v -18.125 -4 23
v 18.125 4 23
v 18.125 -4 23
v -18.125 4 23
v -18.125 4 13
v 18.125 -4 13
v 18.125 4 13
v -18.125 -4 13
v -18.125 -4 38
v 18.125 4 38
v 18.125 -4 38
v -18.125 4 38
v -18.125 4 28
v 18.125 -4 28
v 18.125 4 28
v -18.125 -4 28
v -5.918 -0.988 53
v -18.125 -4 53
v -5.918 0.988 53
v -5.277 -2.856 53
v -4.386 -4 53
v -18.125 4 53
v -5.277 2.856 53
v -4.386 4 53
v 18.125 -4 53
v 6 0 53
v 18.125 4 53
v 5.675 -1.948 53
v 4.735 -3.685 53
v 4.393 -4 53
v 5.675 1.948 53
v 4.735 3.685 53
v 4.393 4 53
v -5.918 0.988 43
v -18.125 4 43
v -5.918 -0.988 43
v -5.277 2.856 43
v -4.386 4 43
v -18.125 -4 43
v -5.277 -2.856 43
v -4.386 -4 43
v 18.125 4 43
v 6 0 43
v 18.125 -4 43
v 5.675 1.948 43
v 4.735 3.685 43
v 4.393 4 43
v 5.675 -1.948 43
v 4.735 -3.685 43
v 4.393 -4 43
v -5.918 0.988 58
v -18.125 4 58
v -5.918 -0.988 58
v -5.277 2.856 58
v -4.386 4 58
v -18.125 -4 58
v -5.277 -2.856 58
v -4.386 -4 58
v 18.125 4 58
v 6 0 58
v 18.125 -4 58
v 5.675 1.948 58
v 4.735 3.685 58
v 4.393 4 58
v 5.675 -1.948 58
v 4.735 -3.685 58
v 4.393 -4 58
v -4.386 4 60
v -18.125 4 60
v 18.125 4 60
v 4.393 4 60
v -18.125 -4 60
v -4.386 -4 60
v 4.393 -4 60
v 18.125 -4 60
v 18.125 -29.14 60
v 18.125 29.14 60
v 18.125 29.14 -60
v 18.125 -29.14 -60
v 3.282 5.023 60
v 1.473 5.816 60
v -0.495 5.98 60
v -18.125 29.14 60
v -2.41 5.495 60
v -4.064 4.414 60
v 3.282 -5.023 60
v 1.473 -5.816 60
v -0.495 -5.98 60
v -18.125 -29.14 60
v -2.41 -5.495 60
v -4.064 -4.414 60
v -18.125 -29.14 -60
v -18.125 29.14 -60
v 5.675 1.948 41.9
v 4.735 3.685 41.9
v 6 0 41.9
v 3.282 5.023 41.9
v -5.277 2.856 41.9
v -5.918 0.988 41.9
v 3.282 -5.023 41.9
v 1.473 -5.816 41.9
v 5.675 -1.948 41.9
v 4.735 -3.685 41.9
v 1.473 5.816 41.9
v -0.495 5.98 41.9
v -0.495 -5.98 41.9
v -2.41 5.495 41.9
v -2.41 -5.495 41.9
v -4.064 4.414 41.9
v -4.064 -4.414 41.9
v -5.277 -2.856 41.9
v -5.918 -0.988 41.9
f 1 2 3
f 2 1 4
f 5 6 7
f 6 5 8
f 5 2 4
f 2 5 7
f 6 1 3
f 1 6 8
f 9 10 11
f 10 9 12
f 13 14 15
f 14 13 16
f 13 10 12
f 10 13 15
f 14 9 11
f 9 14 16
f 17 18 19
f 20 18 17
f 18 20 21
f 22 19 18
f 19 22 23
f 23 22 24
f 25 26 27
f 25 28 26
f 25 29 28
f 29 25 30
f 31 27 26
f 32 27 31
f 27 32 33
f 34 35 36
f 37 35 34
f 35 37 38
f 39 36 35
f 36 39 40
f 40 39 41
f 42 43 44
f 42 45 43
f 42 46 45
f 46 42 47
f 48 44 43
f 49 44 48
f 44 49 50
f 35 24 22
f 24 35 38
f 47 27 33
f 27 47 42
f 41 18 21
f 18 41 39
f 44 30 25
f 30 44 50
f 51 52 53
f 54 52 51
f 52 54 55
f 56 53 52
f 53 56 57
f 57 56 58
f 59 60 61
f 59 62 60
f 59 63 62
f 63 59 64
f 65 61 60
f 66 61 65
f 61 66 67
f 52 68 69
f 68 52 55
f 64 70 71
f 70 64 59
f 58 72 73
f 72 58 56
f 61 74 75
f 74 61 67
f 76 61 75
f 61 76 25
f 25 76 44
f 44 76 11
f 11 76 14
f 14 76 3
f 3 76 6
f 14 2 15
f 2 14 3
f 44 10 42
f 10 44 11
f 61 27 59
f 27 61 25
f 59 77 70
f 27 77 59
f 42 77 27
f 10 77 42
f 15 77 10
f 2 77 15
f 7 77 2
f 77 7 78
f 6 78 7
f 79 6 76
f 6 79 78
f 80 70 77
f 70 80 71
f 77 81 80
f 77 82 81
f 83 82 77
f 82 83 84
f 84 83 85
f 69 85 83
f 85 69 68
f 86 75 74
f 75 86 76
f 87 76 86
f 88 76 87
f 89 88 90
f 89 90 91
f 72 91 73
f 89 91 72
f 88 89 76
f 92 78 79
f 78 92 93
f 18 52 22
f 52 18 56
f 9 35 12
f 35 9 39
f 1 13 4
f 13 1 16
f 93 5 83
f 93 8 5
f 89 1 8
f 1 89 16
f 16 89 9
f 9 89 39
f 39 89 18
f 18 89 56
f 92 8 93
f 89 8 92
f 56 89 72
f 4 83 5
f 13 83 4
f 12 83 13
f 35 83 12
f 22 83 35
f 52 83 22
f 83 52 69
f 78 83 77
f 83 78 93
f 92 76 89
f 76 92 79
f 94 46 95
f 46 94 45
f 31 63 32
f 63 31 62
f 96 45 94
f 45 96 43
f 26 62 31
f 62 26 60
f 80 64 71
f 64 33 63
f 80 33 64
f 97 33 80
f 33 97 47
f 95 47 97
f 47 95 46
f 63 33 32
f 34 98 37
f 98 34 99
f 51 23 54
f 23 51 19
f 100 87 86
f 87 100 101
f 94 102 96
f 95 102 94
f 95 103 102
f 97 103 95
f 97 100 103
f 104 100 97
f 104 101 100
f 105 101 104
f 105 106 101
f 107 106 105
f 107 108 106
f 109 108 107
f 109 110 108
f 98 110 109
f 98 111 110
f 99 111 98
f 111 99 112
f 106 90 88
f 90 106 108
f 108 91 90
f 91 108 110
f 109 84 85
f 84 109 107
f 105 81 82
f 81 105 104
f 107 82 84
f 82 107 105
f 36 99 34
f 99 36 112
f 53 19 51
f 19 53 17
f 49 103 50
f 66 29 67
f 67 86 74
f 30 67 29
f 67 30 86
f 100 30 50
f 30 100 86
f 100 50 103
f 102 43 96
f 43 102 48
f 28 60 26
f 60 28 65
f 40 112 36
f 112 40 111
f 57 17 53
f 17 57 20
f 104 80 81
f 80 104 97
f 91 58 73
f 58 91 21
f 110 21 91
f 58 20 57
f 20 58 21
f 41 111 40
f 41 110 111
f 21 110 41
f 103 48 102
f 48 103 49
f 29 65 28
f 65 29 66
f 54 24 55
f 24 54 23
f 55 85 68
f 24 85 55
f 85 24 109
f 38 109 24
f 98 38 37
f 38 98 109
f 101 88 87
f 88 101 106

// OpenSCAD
/* doodle-meta {"version":1,"parameters":{"width":{"label":"Overall width","description":"Changes the body width","unit":"mm","feature":"body_width"},"depth":{"label":"Overall depth","description":"Changes the body depth","unit":"mm","feature":"body_depth"},"height":{"label":"Overall height","description":"Changes the body height","unit":"mm","feature":"body_height"},"thickness":{"label":"Plate thickness","description":"Changes the thickness of the plate","unit":"mm","feature":"body_thickness"},"hole_diameter":{"label":"Central hole diameter","description":"Changes the diameter of the central hole","unit":"mm","feature":"central_hole"},"slot_width":{"label":"Slot width","description":"Changes the width of the mounting slots","unit":"mm","feature":"slot_row"},"slot_height":{"label":"Slot height","description":"Changes the height of the mounting slots","unit":"mm","feature":"slot_row"},"slot_count":{"label":"Slot count","description":"Changes the number of mounting slots","unit":"count","feature":"slot_row"}},"features":{"body_width":{"kind":"dimension","axis":"x","label":"Overall width"},"body_depth":{"kind":"dimension","axis":"y","label":"Overall depth"},"body_height":{"kind":"dimension","axis":"z","label":"Overall height"},"body_thickness":{"kind":"dimension","axis":"y","label":"Plate thickness"},"central_hole":{"kind":"region","label":"Central hole","min":[{"parameter":"width","scale":0.5,"offset":0},{"parameter":"depth","scale":0.5,"offset":0},{"parameter":"height","scale":0.8,"offset":0}],"max":[{"parameter":"width","scale":0.5,"offset":0},{"parameter":"depth","scale":0.5,"offset":0},{"parameter":"height","scale":0.9,"offset":0}]},"slot_row":{"kind":"region","label":"Slot row","min":[{"parameter":"width","scale":0.5,"offset":0},{"parameter":"depth","scale":0.5,"offset":0},{"parameter":"height","scale":0.1,"offset":0}],"max":[{"parameter":"width","scale":0.5,"offset":0},{"parameter":"depth","scale":0.5,"offset":0},{"parameter":"height","scale":0.7,"offset":0}]}}} */

// Parameters
width = 36.25;
depth = 58.28;
height = 120.0;
thickness = 6.0;
hole_diameter = 12.0;
slot_width = 8.0;
slot_height = 10.0;
slot_count = 5;

// Derived constants
eps = 0.1;
hole_z = height * 0.85;
slot_start_z = height * 0.15;
slot_end_z = height * 0.65;
slot_pitch = (slot_end_z - slot_start_z) / (slot_count - 1);

// Main Body
difference() {
    // Base Plate
    translate([0, 0, 0])
        cube([width, depth, height], center=true);

    // Central Hole (Top View -> cuts along Z)
    translate([0, 0, hole_z])
        cylinder(d=hole_diameter, h=height+2*eps, center=true);

    // Slot Row (Right View -> cuts along X)
    for (i = [0 : slot_count - 1]) {
        translate([0, 0, slot_start_z + i * slot_pitch])
            cube([width+2*eps, slot_width, slot_height], center=true);
    }
}
